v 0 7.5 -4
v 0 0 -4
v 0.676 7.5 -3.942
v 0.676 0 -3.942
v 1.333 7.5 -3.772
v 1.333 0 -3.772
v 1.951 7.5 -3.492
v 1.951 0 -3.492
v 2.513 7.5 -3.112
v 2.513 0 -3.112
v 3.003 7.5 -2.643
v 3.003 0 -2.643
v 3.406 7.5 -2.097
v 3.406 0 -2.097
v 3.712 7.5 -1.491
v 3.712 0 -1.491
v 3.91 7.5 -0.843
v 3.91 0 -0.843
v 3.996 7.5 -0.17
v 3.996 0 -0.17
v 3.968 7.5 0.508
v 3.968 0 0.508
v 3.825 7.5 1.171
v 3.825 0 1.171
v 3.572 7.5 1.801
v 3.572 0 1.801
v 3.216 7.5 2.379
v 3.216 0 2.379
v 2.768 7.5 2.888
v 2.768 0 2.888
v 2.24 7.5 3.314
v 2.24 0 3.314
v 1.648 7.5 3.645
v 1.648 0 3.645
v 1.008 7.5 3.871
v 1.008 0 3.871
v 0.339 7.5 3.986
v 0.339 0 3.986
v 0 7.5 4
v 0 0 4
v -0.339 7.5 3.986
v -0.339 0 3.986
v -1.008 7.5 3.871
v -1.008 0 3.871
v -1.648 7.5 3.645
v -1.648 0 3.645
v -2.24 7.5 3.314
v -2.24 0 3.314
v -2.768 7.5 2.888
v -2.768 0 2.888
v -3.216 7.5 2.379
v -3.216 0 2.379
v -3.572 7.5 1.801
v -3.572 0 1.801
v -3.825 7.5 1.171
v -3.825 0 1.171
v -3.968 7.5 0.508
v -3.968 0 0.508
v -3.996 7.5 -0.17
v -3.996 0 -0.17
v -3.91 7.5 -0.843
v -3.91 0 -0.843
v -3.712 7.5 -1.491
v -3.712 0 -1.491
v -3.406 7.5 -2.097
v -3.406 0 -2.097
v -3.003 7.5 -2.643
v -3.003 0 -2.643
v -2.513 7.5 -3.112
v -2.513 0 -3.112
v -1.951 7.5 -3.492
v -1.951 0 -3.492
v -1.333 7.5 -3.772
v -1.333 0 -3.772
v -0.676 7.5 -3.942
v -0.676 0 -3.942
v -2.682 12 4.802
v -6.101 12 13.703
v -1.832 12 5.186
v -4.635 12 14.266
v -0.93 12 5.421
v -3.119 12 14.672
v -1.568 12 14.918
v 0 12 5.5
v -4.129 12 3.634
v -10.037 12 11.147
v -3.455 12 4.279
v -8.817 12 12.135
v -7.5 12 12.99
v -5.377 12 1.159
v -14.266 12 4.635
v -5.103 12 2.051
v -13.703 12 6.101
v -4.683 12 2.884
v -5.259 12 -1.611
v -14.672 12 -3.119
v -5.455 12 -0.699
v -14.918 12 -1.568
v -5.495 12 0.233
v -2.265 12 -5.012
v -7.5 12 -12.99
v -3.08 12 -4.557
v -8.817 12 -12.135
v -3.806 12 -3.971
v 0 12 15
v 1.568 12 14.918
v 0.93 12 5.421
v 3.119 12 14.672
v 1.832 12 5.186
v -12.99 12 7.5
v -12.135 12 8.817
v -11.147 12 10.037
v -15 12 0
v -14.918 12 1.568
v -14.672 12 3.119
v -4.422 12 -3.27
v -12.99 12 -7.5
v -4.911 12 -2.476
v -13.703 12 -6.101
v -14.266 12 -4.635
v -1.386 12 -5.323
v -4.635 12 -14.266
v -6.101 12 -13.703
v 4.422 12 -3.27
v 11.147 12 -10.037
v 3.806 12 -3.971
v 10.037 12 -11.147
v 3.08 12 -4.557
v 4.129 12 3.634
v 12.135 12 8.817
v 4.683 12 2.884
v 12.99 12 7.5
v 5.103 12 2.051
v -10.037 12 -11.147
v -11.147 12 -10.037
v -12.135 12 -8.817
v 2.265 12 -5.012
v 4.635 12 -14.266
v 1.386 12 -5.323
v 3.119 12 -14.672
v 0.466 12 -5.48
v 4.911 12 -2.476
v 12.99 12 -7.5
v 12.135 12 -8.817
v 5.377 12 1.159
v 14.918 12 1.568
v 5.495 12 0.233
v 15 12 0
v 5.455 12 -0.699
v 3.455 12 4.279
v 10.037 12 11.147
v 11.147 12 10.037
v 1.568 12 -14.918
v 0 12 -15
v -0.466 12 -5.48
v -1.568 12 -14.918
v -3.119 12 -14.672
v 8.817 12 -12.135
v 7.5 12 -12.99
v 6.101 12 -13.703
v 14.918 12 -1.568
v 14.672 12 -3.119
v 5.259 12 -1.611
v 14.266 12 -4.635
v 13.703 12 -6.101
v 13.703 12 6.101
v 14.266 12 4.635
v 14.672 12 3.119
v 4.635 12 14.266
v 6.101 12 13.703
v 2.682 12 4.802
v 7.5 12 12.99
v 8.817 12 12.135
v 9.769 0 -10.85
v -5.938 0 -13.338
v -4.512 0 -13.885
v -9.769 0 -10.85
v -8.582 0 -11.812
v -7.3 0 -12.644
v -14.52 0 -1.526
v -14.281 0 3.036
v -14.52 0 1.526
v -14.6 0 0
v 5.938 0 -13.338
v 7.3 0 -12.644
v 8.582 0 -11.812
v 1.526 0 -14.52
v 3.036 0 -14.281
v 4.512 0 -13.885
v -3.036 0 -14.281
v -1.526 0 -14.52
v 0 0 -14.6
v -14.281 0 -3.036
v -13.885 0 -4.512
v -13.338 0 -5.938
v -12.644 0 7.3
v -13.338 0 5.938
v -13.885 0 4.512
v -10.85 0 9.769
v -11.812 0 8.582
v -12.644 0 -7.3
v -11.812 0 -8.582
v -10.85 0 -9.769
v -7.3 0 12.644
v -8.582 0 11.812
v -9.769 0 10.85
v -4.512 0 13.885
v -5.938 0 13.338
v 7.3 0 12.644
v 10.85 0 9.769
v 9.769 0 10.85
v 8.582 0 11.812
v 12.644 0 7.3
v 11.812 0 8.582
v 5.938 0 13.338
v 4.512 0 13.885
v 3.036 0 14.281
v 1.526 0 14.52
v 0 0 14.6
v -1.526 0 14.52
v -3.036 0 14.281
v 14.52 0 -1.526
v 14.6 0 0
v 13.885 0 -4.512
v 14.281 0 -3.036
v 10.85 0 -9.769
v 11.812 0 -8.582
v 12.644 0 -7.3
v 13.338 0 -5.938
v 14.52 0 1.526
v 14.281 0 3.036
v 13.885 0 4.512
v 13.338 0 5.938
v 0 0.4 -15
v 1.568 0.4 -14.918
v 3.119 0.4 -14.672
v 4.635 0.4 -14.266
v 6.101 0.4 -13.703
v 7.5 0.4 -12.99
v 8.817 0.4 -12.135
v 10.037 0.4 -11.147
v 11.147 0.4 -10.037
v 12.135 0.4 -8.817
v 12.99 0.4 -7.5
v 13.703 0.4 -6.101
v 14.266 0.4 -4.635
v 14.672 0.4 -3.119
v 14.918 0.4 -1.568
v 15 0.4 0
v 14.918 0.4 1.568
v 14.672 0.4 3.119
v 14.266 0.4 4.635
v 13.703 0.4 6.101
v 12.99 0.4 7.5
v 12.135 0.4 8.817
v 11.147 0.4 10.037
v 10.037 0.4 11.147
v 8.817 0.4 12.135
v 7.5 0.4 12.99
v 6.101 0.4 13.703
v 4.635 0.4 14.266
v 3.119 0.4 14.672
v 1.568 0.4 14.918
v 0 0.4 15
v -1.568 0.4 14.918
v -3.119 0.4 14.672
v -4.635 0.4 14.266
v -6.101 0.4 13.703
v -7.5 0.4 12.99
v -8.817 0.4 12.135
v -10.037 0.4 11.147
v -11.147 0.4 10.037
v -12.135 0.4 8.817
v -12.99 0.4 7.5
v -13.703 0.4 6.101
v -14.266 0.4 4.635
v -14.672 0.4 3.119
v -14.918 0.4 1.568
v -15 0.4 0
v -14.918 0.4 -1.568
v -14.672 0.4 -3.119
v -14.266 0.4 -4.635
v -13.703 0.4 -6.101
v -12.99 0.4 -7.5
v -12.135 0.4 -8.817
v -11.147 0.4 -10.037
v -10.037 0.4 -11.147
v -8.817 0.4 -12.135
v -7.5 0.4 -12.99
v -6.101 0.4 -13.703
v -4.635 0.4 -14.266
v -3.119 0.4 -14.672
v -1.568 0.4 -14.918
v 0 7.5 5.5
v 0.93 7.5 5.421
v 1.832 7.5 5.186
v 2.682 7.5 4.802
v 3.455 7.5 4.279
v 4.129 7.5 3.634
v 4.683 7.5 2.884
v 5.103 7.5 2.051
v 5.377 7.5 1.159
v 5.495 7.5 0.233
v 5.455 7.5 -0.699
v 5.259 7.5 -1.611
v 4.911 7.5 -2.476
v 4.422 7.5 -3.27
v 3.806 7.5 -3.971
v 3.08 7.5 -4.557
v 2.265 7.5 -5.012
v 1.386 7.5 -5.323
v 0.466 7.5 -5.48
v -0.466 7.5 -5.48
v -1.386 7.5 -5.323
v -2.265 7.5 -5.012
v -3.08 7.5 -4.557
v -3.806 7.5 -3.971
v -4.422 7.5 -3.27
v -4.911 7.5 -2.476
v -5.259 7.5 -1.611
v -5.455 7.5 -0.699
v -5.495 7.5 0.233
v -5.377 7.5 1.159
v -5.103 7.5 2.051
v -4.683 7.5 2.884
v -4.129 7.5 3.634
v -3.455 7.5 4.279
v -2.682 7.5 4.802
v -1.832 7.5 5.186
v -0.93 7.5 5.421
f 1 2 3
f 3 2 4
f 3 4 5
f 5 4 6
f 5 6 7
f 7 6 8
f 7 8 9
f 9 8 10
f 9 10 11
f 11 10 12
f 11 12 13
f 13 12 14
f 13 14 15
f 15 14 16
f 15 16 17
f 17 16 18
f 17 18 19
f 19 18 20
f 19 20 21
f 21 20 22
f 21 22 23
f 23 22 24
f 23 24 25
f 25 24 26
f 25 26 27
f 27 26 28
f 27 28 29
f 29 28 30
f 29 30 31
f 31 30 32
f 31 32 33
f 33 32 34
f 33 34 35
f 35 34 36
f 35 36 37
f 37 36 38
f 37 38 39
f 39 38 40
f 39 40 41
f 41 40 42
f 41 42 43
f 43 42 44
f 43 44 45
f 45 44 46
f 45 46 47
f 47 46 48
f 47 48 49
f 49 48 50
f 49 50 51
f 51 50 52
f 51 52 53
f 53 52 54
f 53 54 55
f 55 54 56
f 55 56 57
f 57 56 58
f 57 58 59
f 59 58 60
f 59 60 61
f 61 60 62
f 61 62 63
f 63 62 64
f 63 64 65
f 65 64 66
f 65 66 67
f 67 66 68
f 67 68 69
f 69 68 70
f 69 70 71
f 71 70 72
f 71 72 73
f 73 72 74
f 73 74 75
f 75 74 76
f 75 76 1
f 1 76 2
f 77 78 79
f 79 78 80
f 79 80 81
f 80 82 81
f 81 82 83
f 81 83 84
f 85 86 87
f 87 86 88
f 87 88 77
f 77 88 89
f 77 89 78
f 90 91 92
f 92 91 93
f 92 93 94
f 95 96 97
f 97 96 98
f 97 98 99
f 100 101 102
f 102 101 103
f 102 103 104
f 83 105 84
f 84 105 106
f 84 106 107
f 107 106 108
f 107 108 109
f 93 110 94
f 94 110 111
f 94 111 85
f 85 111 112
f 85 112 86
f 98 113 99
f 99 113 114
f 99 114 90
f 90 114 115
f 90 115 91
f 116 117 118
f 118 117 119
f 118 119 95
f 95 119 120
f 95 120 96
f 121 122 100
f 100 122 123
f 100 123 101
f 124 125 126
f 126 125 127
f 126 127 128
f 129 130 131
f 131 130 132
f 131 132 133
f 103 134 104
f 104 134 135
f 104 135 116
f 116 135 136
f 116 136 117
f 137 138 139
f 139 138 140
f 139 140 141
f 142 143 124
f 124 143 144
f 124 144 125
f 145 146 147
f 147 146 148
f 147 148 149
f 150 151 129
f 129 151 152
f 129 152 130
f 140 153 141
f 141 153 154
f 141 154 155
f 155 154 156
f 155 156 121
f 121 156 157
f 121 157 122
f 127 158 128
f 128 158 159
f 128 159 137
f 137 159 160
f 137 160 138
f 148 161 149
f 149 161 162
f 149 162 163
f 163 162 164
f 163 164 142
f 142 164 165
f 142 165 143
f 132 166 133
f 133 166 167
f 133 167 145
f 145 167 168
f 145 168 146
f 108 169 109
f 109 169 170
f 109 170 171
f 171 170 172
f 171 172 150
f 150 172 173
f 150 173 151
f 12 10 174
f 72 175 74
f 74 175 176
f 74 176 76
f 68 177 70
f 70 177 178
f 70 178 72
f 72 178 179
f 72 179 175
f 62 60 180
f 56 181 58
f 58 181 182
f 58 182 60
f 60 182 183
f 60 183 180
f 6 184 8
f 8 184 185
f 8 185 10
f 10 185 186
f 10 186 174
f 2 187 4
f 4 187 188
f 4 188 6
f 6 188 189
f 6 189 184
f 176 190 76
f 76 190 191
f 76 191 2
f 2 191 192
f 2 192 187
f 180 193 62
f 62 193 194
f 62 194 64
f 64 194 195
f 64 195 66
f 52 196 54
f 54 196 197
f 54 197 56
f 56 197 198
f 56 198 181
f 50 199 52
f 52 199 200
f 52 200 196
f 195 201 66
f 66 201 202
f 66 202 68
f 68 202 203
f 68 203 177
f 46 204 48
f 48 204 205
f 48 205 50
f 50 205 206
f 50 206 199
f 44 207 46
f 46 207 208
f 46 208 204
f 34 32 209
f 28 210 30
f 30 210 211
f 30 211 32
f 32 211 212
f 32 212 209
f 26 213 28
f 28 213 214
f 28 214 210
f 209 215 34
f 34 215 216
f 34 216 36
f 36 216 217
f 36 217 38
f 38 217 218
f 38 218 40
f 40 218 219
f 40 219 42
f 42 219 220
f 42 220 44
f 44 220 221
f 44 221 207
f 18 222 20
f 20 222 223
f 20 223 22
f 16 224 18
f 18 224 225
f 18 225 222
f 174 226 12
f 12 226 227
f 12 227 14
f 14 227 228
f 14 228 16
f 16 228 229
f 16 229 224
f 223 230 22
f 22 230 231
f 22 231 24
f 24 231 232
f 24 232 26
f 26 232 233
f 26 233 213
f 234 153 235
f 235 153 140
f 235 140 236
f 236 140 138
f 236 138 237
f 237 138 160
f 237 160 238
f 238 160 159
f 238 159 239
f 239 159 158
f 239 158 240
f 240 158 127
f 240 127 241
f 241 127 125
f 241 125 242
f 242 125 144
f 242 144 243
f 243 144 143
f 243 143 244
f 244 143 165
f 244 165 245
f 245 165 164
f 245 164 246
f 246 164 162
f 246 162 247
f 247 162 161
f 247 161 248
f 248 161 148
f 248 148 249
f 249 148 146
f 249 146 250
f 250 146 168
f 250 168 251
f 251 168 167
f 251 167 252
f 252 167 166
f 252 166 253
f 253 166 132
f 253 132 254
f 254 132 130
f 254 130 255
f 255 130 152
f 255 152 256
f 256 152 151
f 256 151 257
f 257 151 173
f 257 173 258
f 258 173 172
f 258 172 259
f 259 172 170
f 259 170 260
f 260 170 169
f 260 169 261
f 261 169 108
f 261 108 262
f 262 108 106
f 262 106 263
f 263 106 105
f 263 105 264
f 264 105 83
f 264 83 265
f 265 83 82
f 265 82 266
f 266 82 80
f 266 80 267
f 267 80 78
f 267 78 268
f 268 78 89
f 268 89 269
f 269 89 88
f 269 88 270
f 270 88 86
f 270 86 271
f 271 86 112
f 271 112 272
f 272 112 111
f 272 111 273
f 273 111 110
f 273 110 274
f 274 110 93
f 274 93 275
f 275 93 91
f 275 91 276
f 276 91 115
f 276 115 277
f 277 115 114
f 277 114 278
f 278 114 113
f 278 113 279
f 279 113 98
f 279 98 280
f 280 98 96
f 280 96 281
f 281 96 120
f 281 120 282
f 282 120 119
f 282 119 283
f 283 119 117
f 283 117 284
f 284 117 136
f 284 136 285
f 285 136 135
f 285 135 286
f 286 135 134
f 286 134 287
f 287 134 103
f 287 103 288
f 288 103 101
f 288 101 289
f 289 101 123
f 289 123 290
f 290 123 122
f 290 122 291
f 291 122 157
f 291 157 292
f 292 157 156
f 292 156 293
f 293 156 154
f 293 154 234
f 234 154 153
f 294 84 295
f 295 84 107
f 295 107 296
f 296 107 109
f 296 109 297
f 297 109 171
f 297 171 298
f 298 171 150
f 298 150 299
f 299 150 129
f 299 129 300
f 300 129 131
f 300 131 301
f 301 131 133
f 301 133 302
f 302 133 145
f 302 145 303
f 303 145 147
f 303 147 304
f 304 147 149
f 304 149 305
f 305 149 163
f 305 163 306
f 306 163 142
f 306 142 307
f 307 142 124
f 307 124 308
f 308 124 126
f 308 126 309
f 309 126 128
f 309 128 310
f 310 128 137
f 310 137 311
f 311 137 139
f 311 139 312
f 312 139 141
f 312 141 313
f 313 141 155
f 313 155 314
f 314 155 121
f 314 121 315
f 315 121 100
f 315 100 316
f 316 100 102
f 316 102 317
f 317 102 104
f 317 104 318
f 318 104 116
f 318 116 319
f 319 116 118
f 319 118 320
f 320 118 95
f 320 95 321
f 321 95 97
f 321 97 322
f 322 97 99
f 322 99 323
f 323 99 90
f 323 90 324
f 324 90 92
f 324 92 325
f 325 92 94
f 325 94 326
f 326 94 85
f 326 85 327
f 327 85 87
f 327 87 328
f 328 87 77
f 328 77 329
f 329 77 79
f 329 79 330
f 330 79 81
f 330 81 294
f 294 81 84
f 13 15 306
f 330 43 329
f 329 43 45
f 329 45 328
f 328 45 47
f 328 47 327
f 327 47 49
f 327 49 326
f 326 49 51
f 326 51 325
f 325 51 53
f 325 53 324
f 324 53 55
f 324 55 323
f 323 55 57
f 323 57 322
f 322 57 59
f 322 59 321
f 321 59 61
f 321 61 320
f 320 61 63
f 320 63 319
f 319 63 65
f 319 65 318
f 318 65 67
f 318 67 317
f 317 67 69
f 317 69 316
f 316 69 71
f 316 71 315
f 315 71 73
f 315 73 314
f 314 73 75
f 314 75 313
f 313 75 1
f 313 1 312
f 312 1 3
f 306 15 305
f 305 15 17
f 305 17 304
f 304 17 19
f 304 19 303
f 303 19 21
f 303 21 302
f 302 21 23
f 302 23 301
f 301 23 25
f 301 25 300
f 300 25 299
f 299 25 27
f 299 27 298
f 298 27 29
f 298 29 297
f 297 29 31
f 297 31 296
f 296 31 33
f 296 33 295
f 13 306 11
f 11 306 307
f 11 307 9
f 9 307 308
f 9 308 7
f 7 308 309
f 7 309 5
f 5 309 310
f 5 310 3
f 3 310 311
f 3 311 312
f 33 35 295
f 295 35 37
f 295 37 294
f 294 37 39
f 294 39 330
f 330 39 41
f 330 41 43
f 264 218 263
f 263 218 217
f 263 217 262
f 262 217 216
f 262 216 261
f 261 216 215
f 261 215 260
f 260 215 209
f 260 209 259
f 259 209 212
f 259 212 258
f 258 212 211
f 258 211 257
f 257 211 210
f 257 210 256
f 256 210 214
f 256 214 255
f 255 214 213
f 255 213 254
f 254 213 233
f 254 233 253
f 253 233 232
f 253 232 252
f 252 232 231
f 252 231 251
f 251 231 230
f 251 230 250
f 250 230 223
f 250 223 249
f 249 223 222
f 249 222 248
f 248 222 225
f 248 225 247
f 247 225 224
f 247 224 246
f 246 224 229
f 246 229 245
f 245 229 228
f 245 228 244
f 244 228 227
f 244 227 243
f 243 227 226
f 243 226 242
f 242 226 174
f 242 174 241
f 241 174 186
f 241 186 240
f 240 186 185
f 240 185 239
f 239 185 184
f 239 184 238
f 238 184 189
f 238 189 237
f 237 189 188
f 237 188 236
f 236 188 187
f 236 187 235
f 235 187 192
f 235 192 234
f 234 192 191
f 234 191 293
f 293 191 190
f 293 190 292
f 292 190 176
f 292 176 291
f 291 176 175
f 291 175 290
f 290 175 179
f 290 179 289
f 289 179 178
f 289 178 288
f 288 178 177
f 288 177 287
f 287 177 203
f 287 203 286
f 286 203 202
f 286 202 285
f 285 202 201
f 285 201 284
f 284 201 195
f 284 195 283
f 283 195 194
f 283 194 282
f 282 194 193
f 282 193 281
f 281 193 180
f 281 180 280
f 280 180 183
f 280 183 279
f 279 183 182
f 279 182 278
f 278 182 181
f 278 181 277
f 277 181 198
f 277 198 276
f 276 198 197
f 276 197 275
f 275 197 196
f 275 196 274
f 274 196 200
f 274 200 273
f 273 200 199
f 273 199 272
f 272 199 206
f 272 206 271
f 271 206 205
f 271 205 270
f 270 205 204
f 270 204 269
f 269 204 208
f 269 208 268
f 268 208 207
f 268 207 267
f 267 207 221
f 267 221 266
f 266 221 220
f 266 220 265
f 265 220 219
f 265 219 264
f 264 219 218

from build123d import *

# Parameters (mm, degrees)
SKETCH1_R           = 15
SKETCH1_R_2         = 4
BOSS_EXTRUDE1_DEPTH = 12
SKETCH2_R           = 5.5
CUT_EXTRUDE1_DEPTH  = 4.5
CHAMFER1_SIZE       = 0.4
CHAMFER1_SIZE2      = 0.399999869


with BuildPart() as part:
    # Sketch1 → Boss-Extrude1 (new body)
    with BuildSketch(Plane(origin=(0, 0, 0), x_dir=(1, 0, 0), z_dir=(0, 1, 0))):
        with Locations(Location((0, 0, 0), (0, 0, 270))):
            Circle(SKETCH1_R)
        with Locations(Location((0, 0, 0), (0, 0, 270))):
            Circle(SKETCH1_R_2, mode=Mode.SUBTRACT)
    extrude(amount=BOSS_EXTRUDE1_DEPTH)

    # Sketch2 → Cut-Extrude1 (cut, symmetric)
    with BuildSketch(Plane(origin=(0, 12, 0), x_dir=(1, 0, 0), z_dir=(0, 1, 0))):
        with Locations(Location((0, 0, 0), (0, 0, 270))):
            Circle(SKETCH2_R)
    extrude(amount=CUT_EXTRUDE1_DEPTH, both=True, mode=Mode.SUBTRACT)

    # Chamfer1
    chamfer1_edges = [part.edges().sort_by_distance(p)[0] for p in [
        (0, 0, -15),
    ]]
    chamfer1_side = [part.faces().sort_by_distance(p)[0] for p in [
        (0, 6, -15),
    ]]
    chamfer(chamfer1_edges, length=CHAMFER1_SIZE, length2=CHAMFER1_SIZE2, reference=chamfer1_side[0])


solid = part.part
